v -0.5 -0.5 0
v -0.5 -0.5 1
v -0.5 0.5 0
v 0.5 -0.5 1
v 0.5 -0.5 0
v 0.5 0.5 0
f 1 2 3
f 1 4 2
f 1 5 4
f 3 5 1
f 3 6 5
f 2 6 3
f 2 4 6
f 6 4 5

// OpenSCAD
// Triangular Prism (Right) for Basic Shapes
// by Slashee the Cow

translate([-0.5, -0.5, 0])
    rotate([90,0,90])
        linear_extrude(1, true)
            polygon([[0,0],[0,1],[1,0]]);
